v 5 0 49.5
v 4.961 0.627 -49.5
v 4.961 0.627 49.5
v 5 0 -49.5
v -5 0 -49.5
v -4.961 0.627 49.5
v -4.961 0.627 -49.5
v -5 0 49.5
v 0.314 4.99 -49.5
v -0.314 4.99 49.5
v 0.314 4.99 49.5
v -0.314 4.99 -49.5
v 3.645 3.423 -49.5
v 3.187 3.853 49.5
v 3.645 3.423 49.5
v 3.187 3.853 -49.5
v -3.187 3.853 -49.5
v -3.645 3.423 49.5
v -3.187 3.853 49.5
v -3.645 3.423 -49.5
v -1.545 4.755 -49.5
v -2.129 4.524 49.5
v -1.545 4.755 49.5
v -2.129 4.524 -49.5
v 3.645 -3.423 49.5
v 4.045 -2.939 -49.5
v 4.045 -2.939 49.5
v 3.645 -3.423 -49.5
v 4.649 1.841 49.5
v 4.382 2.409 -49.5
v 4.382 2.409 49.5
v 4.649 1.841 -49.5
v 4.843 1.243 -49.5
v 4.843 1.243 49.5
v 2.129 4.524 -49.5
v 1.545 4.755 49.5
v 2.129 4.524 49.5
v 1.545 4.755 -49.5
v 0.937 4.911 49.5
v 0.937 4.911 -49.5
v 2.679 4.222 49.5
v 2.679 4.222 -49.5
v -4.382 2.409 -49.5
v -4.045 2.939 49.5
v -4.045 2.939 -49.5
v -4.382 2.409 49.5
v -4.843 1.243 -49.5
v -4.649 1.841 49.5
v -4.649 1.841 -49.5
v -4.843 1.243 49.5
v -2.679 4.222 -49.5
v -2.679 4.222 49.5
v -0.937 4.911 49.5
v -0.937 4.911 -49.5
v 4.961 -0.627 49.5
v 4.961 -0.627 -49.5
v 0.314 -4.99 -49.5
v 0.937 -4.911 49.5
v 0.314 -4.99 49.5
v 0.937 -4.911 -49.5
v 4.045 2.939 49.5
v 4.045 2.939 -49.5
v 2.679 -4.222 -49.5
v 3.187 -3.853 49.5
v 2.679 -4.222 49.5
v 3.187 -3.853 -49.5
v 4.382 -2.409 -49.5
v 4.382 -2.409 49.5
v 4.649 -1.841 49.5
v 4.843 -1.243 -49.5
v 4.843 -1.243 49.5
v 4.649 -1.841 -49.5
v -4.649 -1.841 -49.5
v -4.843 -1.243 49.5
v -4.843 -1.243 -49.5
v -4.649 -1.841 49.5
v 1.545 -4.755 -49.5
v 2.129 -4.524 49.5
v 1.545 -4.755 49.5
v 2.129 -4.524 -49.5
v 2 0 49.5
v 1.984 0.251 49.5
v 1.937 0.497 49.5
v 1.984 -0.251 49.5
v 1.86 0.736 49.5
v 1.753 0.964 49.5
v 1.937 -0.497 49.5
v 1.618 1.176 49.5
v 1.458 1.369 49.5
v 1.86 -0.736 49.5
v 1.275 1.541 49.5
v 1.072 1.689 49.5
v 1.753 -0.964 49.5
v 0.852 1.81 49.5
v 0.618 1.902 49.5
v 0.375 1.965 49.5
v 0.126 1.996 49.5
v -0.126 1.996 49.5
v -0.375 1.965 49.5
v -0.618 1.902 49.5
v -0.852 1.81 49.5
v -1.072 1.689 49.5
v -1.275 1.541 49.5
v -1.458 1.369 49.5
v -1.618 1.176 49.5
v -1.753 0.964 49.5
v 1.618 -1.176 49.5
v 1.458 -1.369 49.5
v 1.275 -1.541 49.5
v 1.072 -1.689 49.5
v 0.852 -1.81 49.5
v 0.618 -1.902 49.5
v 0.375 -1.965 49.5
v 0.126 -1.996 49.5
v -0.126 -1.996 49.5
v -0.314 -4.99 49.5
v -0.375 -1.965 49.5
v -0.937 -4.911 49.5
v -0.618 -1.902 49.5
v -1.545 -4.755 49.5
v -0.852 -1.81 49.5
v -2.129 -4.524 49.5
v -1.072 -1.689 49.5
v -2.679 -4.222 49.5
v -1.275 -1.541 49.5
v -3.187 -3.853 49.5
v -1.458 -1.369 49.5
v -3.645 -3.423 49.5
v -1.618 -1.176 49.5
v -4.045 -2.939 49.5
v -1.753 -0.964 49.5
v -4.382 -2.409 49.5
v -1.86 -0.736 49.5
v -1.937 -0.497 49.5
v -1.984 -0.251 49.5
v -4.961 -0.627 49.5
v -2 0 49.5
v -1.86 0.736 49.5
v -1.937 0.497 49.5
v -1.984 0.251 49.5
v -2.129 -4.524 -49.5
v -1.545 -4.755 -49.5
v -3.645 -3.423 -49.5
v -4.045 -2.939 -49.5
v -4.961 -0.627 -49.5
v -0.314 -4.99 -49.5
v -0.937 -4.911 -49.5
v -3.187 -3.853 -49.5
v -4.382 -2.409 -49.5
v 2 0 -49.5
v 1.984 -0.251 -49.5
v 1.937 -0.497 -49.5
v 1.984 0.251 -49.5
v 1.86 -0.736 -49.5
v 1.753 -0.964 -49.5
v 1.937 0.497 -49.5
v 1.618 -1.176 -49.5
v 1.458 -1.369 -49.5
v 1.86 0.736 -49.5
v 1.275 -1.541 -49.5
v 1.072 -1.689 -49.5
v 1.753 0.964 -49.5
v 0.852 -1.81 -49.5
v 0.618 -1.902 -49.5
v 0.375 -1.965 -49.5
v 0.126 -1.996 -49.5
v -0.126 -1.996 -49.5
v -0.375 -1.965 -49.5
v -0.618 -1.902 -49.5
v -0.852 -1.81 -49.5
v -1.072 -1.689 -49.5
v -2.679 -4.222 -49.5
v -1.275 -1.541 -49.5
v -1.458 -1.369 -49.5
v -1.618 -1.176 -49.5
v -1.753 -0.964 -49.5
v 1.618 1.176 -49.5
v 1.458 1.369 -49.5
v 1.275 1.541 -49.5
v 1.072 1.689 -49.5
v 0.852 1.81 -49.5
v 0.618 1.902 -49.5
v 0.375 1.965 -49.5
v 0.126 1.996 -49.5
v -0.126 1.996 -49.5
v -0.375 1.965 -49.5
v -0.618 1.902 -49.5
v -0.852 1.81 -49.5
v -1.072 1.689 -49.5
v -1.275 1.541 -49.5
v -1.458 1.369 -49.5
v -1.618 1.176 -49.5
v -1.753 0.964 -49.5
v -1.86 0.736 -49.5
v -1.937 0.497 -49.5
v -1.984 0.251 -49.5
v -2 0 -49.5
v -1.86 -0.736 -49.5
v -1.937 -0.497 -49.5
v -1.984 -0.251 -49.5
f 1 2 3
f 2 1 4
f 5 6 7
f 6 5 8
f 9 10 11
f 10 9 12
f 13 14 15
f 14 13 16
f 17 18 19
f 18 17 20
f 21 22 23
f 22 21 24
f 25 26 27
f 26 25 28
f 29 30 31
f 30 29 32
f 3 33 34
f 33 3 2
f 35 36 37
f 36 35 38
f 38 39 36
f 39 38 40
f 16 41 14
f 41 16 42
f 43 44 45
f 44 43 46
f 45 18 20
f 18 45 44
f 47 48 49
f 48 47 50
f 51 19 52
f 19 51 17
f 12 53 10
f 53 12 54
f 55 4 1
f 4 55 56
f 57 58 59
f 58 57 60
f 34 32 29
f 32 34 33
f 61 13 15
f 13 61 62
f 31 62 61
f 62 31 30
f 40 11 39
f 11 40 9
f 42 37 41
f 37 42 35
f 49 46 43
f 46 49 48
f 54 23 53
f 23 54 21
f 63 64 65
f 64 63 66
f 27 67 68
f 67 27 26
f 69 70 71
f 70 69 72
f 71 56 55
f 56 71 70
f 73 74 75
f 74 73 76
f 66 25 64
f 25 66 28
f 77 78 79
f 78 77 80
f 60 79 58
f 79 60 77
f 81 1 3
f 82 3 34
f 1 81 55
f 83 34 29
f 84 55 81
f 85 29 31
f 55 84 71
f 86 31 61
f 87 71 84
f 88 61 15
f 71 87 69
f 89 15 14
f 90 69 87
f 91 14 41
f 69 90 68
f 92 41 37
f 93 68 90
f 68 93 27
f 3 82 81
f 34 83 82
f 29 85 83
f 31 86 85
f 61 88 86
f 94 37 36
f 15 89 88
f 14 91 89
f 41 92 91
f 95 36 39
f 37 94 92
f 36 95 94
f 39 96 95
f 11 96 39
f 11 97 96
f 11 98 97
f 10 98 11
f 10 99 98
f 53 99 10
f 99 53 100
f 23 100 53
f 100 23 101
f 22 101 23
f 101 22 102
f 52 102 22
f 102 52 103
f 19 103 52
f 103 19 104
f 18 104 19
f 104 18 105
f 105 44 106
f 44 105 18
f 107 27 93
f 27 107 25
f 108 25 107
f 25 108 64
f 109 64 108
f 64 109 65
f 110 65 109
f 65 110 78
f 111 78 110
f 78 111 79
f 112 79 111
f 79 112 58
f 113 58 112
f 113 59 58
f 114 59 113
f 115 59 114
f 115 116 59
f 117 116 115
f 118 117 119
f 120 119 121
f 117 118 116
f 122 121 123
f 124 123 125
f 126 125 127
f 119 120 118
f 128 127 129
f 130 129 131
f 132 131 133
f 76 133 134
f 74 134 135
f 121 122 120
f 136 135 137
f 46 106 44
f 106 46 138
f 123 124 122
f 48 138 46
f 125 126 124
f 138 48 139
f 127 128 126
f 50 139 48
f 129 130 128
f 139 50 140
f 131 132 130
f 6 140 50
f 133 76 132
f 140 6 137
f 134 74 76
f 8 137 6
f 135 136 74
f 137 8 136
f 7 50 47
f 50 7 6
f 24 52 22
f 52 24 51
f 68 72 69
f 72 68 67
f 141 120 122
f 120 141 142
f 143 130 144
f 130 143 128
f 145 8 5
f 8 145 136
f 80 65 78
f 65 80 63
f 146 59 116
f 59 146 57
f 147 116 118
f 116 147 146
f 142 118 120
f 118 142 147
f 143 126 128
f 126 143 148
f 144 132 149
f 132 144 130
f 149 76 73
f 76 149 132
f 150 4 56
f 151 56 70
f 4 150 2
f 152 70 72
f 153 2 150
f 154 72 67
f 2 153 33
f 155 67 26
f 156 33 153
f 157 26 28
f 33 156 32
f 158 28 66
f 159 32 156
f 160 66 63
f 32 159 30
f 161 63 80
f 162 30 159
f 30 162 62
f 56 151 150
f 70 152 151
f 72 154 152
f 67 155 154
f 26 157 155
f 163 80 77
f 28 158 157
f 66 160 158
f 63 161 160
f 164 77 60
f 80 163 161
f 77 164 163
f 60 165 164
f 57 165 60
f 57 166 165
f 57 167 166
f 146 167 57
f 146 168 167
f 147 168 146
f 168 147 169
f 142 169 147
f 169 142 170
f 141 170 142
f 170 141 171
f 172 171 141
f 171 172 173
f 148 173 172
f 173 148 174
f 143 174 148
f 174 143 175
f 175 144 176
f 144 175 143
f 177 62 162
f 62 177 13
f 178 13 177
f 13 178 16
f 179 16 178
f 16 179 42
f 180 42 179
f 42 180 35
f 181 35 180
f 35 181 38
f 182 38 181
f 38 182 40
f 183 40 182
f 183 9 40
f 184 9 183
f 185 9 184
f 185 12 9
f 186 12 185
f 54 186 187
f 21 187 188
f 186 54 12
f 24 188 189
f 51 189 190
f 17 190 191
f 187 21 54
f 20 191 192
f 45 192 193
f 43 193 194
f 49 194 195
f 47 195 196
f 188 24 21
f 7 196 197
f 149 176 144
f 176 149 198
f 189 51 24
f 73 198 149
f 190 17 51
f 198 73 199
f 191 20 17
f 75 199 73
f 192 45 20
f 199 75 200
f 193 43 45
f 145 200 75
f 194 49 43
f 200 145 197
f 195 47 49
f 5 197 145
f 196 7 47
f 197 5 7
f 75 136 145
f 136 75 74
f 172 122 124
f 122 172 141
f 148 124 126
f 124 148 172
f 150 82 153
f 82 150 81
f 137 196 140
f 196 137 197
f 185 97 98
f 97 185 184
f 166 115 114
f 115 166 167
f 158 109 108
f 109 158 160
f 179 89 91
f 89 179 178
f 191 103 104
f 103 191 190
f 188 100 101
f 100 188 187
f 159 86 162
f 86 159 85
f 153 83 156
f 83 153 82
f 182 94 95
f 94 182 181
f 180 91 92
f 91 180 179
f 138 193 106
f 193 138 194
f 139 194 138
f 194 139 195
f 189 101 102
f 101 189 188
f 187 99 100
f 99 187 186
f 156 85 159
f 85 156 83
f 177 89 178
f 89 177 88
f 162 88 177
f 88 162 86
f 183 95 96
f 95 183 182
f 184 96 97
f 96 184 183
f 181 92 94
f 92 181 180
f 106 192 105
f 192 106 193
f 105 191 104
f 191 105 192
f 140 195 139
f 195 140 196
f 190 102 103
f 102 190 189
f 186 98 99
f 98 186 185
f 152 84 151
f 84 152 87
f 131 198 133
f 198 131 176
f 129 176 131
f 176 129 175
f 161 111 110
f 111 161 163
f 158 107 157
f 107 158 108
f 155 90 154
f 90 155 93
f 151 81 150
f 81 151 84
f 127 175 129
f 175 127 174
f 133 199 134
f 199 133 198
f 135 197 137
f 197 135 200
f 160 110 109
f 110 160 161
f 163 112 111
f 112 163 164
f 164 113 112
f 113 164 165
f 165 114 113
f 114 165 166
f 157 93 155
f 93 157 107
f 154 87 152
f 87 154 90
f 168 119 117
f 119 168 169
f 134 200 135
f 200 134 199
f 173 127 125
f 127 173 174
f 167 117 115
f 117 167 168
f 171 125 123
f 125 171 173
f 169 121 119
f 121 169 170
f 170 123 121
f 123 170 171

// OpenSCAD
$fn = 50;


difference() {
	union() {
		translate(v = [0, 0, -49.5000000000]) {
			cylinder(h = 99, r = 5.0000000000);
		}
	}
	union() {
		translate(v = [0, 0, -100.0000000000]) {
			cylinder(h = 200, r = 2.0000000000);
		}
	}
}
